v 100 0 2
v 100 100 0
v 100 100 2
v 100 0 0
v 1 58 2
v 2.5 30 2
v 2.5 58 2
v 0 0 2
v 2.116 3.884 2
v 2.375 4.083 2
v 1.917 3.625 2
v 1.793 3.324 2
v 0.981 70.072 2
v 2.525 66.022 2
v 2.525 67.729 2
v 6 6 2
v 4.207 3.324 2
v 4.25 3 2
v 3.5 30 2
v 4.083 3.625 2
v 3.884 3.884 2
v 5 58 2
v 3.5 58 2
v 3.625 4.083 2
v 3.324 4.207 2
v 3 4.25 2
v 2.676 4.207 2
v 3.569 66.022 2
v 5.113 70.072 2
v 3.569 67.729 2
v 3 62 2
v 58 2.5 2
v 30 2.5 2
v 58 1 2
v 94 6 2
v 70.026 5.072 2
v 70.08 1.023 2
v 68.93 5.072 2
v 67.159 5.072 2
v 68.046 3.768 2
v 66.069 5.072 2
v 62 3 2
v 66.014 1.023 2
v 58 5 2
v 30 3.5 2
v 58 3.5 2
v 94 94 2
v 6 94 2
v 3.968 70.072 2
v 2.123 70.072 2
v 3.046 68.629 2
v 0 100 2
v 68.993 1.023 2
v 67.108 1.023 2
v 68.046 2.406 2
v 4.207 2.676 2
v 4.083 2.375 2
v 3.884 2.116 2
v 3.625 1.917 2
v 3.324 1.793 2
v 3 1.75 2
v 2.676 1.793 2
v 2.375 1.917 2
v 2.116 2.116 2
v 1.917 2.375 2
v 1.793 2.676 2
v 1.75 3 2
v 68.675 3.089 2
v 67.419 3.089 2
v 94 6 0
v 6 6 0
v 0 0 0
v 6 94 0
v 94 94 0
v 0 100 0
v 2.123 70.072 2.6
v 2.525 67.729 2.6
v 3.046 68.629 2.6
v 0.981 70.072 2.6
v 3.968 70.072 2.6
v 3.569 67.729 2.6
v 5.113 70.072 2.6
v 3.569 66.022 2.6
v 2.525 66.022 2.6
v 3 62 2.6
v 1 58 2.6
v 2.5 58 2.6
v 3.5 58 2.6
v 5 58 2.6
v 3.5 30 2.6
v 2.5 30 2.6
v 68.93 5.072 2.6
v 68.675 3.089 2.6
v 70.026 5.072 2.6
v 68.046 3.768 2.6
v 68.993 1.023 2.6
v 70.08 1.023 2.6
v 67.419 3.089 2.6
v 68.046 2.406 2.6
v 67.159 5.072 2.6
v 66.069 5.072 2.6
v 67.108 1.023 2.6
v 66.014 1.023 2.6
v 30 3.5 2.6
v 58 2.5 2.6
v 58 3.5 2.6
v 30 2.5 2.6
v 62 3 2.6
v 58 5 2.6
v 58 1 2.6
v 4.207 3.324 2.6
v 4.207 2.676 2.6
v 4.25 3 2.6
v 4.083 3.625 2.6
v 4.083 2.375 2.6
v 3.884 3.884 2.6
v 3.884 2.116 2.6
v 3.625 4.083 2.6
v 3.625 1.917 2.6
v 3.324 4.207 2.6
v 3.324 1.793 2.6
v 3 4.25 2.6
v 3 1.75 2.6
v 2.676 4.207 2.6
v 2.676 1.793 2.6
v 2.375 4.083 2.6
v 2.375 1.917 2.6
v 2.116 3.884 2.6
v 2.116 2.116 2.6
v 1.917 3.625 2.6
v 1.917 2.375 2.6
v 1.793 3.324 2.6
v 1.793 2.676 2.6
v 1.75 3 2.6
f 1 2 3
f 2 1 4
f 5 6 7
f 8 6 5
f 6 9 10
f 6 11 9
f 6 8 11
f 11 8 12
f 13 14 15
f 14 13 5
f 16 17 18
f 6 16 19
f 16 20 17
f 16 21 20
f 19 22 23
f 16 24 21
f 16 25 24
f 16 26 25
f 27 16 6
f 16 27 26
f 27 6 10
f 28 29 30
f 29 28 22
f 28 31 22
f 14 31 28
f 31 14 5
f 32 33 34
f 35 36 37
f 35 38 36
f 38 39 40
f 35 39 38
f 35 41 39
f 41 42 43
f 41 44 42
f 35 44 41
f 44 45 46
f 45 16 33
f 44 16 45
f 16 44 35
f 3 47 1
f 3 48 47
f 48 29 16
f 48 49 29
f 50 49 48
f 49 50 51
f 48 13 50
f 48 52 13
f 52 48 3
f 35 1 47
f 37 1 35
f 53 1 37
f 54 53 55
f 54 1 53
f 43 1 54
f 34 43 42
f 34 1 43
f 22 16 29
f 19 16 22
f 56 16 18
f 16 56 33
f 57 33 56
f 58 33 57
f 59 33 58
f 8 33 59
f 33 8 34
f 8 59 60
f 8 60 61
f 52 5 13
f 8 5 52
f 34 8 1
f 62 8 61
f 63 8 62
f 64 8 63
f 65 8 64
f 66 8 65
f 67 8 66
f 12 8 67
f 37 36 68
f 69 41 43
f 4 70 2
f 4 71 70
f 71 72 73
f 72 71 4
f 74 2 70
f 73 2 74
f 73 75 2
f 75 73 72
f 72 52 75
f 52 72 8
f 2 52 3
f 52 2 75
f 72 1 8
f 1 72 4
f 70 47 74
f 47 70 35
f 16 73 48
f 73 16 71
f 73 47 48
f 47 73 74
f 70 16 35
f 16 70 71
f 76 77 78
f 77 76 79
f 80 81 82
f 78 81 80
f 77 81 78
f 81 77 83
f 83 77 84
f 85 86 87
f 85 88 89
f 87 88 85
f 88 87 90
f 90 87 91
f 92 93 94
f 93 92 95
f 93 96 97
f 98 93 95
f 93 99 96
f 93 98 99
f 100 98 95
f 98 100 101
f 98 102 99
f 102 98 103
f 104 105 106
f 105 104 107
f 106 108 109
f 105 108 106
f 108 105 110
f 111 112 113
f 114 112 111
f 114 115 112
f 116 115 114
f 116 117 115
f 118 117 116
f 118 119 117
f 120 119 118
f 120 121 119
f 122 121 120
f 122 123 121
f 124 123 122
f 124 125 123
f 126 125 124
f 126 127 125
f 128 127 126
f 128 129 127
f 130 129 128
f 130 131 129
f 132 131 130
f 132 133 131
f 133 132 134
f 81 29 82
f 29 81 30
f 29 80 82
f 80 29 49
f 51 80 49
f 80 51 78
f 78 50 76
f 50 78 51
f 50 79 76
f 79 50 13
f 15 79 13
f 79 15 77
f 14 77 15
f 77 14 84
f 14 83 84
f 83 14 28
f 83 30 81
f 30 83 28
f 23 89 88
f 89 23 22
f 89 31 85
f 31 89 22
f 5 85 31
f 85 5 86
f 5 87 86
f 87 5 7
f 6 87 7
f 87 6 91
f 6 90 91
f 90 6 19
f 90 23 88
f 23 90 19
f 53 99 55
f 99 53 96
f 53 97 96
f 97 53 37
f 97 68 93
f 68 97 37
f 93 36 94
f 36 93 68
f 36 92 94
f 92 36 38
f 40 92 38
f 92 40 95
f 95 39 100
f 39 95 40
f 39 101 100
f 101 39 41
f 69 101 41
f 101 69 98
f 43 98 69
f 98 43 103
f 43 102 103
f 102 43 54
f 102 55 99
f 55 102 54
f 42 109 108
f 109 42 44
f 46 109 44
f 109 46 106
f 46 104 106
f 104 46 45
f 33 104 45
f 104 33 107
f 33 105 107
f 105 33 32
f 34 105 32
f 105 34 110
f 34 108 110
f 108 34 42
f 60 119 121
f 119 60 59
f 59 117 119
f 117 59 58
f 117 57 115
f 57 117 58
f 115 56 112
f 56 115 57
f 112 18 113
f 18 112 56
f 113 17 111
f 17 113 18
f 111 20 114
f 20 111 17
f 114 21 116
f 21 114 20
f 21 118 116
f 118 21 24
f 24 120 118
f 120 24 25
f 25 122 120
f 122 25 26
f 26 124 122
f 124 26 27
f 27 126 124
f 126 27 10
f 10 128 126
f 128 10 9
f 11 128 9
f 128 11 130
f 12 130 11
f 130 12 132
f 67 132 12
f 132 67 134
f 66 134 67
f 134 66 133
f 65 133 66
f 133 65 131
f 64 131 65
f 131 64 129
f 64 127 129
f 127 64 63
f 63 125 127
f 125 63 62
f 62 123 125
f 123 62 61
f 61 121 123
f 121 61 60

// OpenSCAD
// Kalibrierung 2 – Rechtwinkligkeit X/Y: Rahmen 100×100 mm außen, Steg 6 mm, 2 mm hoch.
// Beide Diagonalen außen (Ecke zu Ecke) messen. Pfeil + „X“ auf dem unteren Steg zeigt die X-Richtung,
// „Y“ auf dem linken Steg. Ecke A (unten links) ist mit einem Punkt markiert. Einfarbig.
aussen = 100; steg = 6; hoehe = 2; erhaben = 0.6; schrift = "DejaVu Sans:style=Bold";
difference() {
  cube([aussen, aussen, hoehe]);
  translate([steg, steg, -1]) cube([aussen-2*steg, aussen-2*steg, hoehe+2]);
}
translate([0,0,hoehe-0.01]) linear_extrude(erhaben+0.01) {
  // Pfeil in +X auf dem unteren Steg
  translate([30, steg/2]) { translate([0,-0.5]) square([28,1]); translate([28,0]) polygon([[0,-2],[4,0],[0,2]]); }
  translate([68, steg/2]) text("X", size=4, font=schrift, halign="center", valign="center");
  // Pfeil in +Y auf dem linken Steg
  translate([steg/2, 30]) { translate([-0.5,0]) square([1,28]); translate([0,28]) polygon([[-2,0],[0,4],[2,0]]); }
  translate([steg/2, 68]) text("Y", size=4, font=schrift, halign="center", valign="center");
  translate([steg/2, steg/2]) circle(d=2.5, $fn=24);          // Ecke A
}
